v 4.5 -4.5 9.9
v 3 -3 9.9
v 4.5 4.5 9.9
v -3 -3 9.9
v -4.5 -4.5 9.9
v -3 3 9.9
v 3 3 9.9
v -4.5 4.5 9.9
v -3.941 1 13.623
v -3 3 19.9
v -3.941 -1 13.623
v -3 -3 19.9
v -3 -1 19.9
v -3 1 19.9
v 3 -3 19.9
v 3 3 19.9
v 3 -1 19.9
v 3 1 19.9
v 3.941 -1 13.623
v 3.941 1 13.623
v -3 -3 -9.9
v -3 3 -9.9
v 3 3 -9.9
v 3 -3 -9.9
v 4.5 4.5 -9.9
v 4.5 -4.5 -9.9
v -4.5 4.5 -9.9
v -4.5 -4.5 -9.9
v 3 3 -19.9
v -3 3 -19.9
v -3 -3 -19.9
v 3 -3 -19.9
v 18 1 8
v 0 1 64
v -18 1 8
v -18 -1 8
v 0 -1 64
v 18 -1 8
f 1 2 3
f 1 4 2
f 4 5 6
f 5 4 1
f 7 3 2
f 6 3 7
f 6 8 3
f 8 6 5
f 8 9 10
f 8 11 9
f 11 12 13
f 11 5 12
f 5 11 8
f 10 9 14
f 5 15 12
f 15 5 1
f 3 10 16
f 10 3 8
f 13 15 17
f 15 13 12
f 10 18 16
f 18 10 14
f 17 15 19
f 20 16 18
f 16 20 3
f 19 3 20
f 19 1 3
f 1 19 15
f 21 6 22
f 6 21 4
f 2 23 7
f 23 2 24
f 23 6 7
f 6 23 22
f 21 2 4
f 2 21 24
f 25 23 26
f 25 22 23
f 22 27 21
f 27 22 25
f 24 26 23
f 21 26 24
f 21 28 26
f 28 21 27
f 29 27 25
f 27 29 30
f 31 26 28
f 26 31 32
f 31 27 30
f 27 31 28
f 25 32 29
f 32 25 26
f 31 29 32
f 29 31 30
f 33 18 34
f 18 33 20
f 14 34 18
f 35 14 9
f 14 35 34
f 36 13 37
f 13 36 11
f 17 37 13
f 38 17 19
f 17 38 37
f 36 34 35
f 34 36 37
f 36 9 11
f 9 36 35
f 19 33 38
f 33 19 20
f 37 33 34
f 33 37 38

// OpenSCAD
module frustum(base,top,height){
    linear_extrude(height=height,scale=top/base) square([base,base],center=true);
}


module grip(length,thickness){
    union(){
        translate([0,0,length/2-0.1]) frustum(thickness*1.5,thickness,length*0.5);
        cube([thickness,thickness,length],center=true);
        mirror([0,0,-1]) translate([0,0,length/2-0.1]) frustum(thickness*1.5,thickness,length*0.5);
    }
    
}
module laser(w,h,t){
    translate([0,0,-t/2]) linear_extrude(height=t) polygon([[-w/2,0],[-w*3,-w],[0,h],[w*3,-w],[w/2,0]]);
}


module zsaber(grip_length,grip_width,laser_length,laser_thickness){
    union(){
        color("white") grip(grip_length,grip_width);
        color(c=[0,0.8,0],alpha=0.5) translate([0,0,grip_length*0.7]) rotate([90,0,0]) laser(grip_width,laser_length,laser_thickness);
    }    
}

// EDIT YOUR SABER HERE
zsaber(grip_length=20,grip_width=6,laser_length=50,laser_thickness=2);
